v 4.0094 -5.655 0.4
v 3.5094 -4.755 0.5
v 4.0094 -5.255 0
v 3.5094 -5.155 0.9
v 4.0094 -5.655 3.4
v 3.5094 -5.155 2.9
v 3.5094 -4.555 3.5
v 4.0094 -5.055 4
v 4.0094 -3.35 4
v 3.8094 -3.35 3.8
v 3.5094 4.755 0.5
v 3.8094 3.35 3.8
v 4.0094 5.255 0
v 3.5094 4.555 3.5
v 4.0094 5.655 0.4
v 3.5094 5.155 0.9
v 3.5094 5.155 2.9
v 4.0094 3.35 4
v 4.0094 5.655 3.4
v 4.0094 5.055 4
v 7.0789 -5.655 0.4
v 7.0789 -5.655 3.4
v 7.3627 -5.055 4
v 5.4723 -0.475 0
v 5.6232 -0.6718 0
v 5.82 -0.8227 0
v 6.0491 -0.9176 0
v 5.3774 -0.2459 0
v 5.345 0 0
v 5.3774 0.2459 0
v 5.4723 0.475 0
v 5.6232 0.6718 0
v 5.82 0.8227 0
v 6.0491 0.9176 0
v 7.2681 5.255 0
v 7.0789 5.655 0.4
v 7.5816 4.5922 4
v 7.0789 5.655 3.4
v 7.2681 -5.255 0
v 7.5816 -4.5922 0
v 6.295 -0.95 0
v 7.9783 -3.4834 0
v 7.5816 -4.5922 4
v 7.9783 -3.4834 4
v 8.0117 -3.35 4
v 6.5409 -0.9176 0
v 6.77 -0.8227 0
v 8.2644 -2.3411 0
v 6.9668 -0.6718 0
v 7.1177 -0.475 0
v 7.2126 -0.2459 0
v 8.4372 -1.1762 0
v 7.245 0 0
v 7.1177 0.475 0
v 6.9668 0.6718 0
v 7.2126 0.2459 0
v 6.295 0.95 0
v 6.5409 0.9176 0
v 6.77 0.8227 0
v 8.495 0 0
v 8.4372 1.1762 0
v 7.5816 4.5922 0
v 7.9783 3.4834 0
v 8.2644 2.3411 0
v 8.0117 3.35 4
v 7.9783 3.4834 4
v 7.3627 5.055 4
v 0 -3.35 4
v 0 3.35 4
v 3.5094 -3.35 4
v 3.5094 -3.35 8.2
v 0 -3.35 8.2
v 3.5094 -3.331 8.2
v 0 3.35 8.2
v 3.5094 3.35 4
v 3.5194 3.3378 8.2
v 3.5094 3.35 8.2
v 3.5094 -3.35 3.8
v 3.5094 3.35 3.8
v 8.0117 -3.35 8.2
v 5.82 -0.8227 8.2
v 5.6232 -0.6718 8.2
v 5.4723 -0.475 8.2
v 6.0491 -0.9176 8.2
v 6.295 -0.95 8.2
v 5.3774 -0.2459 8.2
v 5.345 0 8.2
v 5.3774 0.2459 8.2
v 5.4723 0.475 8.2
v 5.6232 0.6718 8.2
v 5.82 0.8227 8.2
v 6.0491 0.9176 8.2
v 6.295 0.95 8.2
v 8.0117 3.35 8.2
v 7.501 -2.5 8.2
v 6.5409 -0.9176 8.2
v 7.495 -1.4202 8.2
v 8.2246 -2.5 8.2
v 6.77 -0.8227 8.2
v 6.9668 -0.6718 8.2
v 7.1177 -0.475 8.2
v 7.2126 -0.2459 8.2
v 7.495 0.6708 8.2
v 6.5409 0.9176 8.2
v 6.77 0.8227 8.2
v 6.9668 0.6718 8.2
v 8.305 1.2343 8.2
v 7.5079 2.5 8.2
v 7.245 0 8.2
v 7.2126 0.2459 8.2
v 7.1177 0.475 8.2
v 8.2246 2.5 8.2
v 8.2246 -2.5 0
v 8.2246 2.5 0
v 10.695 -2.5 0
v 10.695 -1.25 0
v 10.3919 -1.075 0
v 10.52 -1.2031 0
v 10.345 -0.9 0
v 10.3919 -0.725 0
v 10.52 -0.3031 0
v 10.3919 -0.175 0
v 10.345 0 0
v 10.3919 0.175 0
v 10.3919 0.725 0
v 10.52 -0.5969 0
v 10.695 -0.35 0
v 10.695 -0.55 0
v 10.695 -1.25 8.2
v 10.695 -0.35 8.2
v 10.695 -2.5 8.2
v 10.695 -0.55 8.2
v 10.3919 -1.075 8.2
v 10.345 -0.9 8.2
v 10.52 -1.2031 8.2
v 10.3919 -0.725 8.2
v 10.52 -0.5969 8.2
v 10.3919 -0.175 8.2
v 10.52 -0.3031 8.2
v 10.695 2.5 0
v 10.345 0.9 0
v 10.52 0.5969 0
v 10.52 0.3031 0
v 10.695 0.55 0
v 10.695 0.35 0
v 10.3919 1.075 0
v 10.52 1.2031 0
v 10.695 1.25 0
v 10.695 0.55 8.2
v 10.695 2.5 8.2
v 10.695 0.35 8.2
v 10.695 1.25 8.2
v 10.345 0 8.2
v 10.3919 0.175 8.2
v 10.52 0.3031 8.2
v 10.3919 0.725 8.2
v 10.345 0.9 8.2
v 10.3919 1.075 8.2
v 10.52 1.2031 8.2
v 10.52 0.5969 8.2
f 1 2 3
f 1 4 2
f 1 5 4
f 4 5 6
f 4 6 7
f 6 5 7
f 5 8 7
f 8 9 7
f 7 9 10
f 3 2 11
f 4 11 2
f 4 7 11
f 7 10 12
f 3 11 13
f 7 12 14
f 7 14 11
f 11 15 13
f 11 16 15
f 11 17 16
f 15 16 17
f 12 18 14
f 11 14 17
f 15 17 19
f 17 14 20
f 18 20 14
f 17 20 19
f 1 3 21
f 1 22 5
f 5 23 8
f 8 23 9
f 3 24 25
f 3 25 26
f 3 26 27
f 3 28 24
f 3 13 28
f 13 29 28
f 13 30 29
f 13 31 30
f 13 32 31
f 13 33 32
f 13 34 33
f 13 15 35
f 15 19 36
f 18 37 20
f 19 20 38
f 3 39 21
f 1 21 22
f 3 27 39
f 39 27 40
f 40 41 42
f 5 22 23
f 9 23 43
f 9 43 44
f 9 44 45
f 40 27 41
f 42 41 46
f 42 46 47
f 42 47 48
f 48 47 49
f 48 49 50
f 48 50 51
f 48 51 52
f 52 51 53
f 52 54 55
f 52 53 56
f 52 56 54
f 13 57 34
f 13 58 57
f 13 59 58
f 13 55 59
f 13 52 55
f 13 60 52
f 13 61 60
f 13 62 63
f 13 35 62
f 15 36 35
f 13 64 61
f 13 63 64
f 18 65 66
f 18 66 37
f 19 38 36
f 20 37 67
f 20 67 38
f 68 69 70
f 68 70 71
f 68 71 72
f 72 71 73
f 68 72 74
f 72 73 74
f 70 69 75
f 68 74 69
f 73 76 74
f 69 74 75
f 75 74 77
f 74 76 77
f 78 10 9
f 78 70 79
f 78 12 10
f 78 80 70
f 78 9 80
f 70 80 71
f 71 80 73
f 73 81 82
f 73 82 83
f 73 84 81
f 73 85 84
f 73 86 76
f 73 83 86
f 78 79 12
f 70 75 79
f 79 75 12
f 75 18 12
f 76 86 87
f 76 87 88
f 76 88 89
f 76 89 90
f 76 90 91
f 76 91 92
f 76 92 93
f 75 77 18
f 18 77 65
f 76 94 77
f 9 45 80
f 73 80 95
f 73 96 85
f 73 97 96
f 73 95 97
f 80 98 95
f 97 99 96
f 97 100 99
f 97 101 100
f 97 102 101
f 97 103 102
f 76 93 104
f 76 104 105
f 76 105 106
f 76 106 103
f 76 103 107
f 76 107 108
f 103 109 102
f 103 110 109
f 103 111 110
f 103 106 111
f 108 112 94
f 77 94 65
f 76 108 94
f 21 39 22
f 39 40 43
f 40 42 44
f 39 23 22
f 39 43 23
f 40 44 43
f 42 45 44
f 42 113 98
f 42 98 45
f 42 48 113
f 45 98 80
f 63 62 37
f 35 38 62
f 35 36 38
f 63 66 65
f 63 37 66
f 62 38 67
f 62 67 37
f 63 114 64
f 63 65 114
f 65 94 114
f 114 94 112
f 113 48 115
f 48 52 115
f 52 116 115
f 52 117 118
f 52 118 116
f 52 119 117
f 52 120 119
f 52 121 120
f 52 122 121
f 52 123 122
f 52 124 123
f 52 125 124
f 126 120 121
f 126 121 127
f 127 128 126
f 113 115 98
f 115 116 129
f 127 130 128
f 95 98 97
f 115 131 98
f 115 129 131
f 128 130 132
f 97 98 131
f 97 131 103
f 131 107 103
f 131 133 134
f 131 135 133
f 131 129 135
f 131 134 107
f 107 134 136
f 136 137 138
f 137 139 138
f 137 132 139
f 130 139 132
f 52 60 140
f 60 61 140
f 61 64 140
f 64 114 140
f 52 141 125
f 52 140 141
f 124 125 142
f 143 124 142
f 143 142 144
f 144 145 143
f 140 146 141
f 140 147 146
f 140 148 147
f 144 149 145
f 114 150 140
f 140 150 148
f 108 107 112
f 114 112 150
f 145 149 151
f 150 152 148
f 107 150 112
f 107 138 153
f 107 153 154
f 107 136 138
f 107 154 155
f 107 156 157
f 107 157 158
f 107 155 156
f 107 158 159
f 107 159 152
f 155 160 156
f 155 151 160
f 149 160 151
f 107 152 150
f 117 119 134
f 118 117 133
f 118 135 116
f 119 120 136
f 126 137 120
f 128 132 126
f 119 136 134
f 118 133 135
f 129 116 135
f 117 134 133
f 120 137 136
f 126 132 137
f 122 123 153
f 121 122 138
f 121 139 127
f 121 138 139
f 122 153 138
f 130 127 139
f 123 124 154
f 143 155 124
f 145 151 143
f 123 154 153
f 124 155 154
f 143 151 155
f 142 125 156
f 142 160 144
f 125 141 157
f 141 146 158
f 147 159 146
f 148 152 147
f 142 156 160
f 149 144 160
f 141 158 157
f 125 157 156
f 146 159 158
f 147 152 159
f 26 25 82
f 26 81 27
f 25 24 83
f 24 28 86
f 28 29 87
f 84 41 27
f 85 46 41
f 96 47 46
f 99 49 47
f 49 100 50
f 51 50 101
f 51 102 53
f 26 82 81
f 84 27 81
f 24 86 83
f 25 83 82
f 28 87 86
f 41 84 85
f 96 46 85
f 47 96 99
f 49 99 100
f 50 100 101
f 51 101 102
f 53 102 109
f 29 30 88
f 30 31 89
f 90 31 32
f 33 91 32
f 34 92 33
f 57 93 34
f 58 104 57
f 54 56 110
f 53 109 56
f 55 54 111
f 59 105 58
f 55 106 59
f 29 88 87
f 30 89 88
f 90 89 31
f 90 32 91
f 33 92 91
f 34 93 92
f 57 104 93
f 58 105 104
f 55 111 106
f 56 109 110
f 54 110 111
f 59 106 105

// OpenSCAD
// file: swivel_plug_lib.scad
// Swivel plug v3: closes the open side of the magnet swivel after the bolt is in (README Step 4, item 2).
// The swivel's hex channel and the keyhole slot above it are both open on +X so the bolt can be slid in. This T-shaped plug slides in after it: a wide base in the hex channel
// (blocks the head), a narrow neck in the slot (blocks the thread, and, reaching in to x = 3.5, centres the thread), a full-height handle outside the body, and a vertical PIN HOLE
// (a 1.75 mm filament pin, glued, into the matching hole in the swivel's floor) that is the actual lock: the fit only holds the plug while you assemble.
// History: v1 had crush ribs and bound (the digital sweep left them out, so it could not see it). v2 dropped them but graded the wrong axis. Opus 5.5 review of v2: the ceiling over the channel is two
// unsupported ledges that droop, and the channel's faces sit on layer mid-planes, so Z is the uncertain axis. v3: Z clearance is FIXED (about 0.3 per side, faces on 0.2 mm layer boundaries) and only the
// Y width is graded; a relief chamfer under the ledges; a lead-in; the handle prints from the bed up (no overhang); the grade is a count of notches in the handle's outer face.
// The numbers below are COPIED from magnet_swivel.scad; fit_check.py sweeps the plug through the real swivel STL, so a drift fails there. Units: mm.
body_d      = 24;
floor_t     = 3;
m3_head_h   = 3.5;
hex_af      = 11.11 + 0.5;
hex_h       = 4.2 + 0.4;
top_hole    = 7.0;
top_t       = 4;
head_corner = 11.11 / cos(30) / 2;       // the 1/4"-20 bolt head's corner radius: the base stops short of it
plug_gap    = 0.6;
thread_r    = 6.35 / 2;

z0 = floor_t + m3_head_h;                // the hex channel's floor (a layer mid-plane: +-0.1)
z1 = z0 + hex_h;                         // its ceiling = the slot's floor
h  = z1 + top_t;                         // the swivel's top

zb0 = 6.8;                               // base bottom: 0.3 above the channel floor, on a 0.2 mm layer boundary
zb1 = 10.8;                              // base top: 0.3 under the ceiling
zt  = 15.0;                              // neck and handle top: 0.1 under the swivel's top
xn  = thread_r + 0.33;                   // neck's inner end, beside the thread (3.5)
xi  = head_corner + plug_gap;            // base's inner end
xo  = body_d / 2;                        // outer face of base and neck: flush with the body's curve
lip = 2.2;  lip_hw = 2.5;                // the handle: sticks out of the body, full height, 5 mm wide
pin_d = 1.9;  pin_x = 9.8;               // pin hole through the plug; the swivel has the matching 1.9 mm hole in its floor
cb = 0.4;  ct = 0.6;  lead = 0.5;        // chamfer under the base (elephant foot), relief at its top edges (ledge droop), lead-in at its inner end

module octagon(w, a, b, c0, c1) polygon([[-(w/2-c0), a], [w/2-c0, a], [w/2, a+c0], [w/2, b-c1], [w/2-c1, b], [-(w/2-c1), b], [-w/2, b-c1], [-w/2, a+c0]]);
module along_x(x0, x1) translate([x0, 0, 0]) rotate([90, 0, 90]) linear_extrude(height = x1 - x0) children();

// fy: clearance per side in Y (base in the channel, neck in the slot). gzt/gzb: grow the base up/down, only for the digital check (ceiling droop / floor rounding).
module plug(fy = 0.15, mark = 0, gzt = 0, gzb = 0) {
    bw = hex_af - 2 * fy; nw = top_hole - 2 * fy;
    difference() {
        union() {
            intersection() {
                union() {
                    hull() {                                                                              // base with a lead-in at its inner end
                        along_x(xi, xi + 0.01) octagon(bw - 2 * lead, zb0 - gzb + lead, zb1 + gzt - lead, cb, ct);
                        along_x(xi + lead, xi + lead + 0.01) octagon(bw, zb0 - gzb, zb1 + gzt, cb, ct);
                    }
                    along_x(xi + lead, xo + 0.5) octagon(bw, zb0 - gzb, zb1 + gzt, cb, ct);
                    translate([xn, -nw / 2, zb1]) cube([xi - xn + 0.01, nw, zt - zb1]);                     // neck, inner part: from beside the thread, ABOVE the bolt head (its top is 10.7)
                    translate([xi, -nw / 2, zb1 - 0.2]) cube([xo + 0.5 - xi, nw, zt - zb1 + 0.2]);          // neck, outer part: overlaps the base so the two print as one
                }
                translate([0, 0, z0 - 1]) cylinder(d = body_d, h = h - z0 + 2, $fn = 64);                 // the swivel's own $fn: the outer face coincides with its wall
            }
            translate([xo - 1.0, -lip_hw, zb0 - gzb]) cube([lip + 1.0, 2 * lip_hw, zt - zb0 + gzb]);       // the handle, full height from the base's level (prints from the bed up, no overhang)
        }
        translate([pin_x, 0, zb0 - 2]) cylinder(d = pin_d, h = zt - zb0 + 4, $fn = 24);                    // the pin hole
        for (i = [0 : mark - 1]) translate([xo + lip, (i - (mark - 1) / 2) * 0.9, zb0 - 1]) cylinder(d = 0.7, h = zt - zb0 + 2, $fn = 12);   // the grade: notches in the handle's outer face
    }
}
// main file
// One swivel plug (grade 3), in print orientation (base on the bed, neck and handle up). See swivel_plug_lib.scad.
include <swivel_plug_lib.scad>
translate([-xn, 0, -zb0]) plug(0.15, 3);
